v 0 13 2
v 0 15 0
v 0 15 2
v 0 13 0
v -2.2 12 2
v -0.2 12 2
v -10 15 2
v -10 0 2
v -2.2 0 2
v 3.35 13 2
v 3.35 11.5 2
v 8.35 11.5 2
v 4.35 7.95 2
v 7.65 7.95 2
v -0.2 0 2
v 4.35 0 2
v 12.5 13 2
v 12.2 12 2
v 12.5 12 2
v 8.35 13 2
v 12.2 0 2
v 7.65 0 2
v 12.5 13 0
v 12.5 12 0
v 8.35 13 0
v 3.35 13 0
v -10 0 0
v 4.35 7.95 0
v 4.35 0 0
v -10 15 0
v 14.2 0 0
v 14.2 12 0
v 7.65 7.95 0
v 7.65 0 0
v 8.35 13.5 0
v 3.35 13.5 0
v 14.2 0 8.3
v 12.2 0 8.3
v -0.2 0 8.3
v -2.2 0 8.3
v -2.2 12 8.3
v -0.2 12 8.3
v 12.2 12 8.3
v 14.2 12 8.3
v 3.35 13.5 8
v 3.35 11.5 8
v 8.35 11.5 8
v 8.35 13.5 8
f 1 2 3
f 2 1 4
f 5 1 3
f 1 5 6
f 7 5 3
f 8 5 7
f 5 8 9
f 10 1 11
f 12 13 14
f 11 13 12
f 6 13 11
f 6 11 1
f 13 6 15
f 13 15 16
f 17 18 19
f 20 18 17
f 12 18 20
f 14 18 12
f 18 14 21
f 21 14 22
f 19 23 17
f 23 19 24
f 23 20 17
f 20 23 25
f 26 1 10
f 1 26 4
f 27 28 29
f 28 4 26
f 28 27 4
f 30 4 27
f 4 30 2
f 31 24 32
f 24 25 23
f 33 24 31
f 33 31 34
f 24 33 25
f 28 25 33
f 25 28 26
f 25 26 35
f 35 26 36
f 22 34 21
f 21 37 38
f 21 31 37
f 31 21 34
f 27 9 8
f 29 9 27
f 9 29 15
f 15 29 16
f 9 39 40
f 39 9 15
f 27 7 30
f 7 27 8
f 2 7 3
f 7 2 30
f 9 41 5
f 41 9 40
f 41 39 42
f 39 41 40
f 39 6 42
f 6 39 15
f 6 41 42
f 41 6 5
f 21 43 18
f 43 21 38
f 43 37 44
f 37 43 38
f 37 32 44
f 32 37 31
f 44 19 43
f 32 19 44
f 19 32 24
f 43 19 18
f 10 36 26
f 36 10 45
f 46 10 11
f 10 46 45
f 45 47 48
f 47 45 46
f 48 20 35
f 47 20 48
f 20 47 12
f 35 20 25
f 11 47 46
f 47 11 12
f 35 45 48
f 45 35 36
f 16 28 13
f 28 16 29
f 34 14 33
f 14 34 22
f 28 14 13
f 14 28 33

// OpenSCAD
difference(){
    union(){
        cube([12.5,11+2,2]);
        translate([-10, 0, 0]) cube([10,15,2]);
        translate([-2.2, 0, 0]) cube([2,12,6.3+2]);
        translate([12.2, 0, 0]) cube([2,12,6.3+2]);
        translate([5-3.3/2,11.5,0]) cube([5,2,8]);
    }
        translate([6-3.3/2,-0.05,-0.1]) cube([3.3,11-3,2.2]);  
}
